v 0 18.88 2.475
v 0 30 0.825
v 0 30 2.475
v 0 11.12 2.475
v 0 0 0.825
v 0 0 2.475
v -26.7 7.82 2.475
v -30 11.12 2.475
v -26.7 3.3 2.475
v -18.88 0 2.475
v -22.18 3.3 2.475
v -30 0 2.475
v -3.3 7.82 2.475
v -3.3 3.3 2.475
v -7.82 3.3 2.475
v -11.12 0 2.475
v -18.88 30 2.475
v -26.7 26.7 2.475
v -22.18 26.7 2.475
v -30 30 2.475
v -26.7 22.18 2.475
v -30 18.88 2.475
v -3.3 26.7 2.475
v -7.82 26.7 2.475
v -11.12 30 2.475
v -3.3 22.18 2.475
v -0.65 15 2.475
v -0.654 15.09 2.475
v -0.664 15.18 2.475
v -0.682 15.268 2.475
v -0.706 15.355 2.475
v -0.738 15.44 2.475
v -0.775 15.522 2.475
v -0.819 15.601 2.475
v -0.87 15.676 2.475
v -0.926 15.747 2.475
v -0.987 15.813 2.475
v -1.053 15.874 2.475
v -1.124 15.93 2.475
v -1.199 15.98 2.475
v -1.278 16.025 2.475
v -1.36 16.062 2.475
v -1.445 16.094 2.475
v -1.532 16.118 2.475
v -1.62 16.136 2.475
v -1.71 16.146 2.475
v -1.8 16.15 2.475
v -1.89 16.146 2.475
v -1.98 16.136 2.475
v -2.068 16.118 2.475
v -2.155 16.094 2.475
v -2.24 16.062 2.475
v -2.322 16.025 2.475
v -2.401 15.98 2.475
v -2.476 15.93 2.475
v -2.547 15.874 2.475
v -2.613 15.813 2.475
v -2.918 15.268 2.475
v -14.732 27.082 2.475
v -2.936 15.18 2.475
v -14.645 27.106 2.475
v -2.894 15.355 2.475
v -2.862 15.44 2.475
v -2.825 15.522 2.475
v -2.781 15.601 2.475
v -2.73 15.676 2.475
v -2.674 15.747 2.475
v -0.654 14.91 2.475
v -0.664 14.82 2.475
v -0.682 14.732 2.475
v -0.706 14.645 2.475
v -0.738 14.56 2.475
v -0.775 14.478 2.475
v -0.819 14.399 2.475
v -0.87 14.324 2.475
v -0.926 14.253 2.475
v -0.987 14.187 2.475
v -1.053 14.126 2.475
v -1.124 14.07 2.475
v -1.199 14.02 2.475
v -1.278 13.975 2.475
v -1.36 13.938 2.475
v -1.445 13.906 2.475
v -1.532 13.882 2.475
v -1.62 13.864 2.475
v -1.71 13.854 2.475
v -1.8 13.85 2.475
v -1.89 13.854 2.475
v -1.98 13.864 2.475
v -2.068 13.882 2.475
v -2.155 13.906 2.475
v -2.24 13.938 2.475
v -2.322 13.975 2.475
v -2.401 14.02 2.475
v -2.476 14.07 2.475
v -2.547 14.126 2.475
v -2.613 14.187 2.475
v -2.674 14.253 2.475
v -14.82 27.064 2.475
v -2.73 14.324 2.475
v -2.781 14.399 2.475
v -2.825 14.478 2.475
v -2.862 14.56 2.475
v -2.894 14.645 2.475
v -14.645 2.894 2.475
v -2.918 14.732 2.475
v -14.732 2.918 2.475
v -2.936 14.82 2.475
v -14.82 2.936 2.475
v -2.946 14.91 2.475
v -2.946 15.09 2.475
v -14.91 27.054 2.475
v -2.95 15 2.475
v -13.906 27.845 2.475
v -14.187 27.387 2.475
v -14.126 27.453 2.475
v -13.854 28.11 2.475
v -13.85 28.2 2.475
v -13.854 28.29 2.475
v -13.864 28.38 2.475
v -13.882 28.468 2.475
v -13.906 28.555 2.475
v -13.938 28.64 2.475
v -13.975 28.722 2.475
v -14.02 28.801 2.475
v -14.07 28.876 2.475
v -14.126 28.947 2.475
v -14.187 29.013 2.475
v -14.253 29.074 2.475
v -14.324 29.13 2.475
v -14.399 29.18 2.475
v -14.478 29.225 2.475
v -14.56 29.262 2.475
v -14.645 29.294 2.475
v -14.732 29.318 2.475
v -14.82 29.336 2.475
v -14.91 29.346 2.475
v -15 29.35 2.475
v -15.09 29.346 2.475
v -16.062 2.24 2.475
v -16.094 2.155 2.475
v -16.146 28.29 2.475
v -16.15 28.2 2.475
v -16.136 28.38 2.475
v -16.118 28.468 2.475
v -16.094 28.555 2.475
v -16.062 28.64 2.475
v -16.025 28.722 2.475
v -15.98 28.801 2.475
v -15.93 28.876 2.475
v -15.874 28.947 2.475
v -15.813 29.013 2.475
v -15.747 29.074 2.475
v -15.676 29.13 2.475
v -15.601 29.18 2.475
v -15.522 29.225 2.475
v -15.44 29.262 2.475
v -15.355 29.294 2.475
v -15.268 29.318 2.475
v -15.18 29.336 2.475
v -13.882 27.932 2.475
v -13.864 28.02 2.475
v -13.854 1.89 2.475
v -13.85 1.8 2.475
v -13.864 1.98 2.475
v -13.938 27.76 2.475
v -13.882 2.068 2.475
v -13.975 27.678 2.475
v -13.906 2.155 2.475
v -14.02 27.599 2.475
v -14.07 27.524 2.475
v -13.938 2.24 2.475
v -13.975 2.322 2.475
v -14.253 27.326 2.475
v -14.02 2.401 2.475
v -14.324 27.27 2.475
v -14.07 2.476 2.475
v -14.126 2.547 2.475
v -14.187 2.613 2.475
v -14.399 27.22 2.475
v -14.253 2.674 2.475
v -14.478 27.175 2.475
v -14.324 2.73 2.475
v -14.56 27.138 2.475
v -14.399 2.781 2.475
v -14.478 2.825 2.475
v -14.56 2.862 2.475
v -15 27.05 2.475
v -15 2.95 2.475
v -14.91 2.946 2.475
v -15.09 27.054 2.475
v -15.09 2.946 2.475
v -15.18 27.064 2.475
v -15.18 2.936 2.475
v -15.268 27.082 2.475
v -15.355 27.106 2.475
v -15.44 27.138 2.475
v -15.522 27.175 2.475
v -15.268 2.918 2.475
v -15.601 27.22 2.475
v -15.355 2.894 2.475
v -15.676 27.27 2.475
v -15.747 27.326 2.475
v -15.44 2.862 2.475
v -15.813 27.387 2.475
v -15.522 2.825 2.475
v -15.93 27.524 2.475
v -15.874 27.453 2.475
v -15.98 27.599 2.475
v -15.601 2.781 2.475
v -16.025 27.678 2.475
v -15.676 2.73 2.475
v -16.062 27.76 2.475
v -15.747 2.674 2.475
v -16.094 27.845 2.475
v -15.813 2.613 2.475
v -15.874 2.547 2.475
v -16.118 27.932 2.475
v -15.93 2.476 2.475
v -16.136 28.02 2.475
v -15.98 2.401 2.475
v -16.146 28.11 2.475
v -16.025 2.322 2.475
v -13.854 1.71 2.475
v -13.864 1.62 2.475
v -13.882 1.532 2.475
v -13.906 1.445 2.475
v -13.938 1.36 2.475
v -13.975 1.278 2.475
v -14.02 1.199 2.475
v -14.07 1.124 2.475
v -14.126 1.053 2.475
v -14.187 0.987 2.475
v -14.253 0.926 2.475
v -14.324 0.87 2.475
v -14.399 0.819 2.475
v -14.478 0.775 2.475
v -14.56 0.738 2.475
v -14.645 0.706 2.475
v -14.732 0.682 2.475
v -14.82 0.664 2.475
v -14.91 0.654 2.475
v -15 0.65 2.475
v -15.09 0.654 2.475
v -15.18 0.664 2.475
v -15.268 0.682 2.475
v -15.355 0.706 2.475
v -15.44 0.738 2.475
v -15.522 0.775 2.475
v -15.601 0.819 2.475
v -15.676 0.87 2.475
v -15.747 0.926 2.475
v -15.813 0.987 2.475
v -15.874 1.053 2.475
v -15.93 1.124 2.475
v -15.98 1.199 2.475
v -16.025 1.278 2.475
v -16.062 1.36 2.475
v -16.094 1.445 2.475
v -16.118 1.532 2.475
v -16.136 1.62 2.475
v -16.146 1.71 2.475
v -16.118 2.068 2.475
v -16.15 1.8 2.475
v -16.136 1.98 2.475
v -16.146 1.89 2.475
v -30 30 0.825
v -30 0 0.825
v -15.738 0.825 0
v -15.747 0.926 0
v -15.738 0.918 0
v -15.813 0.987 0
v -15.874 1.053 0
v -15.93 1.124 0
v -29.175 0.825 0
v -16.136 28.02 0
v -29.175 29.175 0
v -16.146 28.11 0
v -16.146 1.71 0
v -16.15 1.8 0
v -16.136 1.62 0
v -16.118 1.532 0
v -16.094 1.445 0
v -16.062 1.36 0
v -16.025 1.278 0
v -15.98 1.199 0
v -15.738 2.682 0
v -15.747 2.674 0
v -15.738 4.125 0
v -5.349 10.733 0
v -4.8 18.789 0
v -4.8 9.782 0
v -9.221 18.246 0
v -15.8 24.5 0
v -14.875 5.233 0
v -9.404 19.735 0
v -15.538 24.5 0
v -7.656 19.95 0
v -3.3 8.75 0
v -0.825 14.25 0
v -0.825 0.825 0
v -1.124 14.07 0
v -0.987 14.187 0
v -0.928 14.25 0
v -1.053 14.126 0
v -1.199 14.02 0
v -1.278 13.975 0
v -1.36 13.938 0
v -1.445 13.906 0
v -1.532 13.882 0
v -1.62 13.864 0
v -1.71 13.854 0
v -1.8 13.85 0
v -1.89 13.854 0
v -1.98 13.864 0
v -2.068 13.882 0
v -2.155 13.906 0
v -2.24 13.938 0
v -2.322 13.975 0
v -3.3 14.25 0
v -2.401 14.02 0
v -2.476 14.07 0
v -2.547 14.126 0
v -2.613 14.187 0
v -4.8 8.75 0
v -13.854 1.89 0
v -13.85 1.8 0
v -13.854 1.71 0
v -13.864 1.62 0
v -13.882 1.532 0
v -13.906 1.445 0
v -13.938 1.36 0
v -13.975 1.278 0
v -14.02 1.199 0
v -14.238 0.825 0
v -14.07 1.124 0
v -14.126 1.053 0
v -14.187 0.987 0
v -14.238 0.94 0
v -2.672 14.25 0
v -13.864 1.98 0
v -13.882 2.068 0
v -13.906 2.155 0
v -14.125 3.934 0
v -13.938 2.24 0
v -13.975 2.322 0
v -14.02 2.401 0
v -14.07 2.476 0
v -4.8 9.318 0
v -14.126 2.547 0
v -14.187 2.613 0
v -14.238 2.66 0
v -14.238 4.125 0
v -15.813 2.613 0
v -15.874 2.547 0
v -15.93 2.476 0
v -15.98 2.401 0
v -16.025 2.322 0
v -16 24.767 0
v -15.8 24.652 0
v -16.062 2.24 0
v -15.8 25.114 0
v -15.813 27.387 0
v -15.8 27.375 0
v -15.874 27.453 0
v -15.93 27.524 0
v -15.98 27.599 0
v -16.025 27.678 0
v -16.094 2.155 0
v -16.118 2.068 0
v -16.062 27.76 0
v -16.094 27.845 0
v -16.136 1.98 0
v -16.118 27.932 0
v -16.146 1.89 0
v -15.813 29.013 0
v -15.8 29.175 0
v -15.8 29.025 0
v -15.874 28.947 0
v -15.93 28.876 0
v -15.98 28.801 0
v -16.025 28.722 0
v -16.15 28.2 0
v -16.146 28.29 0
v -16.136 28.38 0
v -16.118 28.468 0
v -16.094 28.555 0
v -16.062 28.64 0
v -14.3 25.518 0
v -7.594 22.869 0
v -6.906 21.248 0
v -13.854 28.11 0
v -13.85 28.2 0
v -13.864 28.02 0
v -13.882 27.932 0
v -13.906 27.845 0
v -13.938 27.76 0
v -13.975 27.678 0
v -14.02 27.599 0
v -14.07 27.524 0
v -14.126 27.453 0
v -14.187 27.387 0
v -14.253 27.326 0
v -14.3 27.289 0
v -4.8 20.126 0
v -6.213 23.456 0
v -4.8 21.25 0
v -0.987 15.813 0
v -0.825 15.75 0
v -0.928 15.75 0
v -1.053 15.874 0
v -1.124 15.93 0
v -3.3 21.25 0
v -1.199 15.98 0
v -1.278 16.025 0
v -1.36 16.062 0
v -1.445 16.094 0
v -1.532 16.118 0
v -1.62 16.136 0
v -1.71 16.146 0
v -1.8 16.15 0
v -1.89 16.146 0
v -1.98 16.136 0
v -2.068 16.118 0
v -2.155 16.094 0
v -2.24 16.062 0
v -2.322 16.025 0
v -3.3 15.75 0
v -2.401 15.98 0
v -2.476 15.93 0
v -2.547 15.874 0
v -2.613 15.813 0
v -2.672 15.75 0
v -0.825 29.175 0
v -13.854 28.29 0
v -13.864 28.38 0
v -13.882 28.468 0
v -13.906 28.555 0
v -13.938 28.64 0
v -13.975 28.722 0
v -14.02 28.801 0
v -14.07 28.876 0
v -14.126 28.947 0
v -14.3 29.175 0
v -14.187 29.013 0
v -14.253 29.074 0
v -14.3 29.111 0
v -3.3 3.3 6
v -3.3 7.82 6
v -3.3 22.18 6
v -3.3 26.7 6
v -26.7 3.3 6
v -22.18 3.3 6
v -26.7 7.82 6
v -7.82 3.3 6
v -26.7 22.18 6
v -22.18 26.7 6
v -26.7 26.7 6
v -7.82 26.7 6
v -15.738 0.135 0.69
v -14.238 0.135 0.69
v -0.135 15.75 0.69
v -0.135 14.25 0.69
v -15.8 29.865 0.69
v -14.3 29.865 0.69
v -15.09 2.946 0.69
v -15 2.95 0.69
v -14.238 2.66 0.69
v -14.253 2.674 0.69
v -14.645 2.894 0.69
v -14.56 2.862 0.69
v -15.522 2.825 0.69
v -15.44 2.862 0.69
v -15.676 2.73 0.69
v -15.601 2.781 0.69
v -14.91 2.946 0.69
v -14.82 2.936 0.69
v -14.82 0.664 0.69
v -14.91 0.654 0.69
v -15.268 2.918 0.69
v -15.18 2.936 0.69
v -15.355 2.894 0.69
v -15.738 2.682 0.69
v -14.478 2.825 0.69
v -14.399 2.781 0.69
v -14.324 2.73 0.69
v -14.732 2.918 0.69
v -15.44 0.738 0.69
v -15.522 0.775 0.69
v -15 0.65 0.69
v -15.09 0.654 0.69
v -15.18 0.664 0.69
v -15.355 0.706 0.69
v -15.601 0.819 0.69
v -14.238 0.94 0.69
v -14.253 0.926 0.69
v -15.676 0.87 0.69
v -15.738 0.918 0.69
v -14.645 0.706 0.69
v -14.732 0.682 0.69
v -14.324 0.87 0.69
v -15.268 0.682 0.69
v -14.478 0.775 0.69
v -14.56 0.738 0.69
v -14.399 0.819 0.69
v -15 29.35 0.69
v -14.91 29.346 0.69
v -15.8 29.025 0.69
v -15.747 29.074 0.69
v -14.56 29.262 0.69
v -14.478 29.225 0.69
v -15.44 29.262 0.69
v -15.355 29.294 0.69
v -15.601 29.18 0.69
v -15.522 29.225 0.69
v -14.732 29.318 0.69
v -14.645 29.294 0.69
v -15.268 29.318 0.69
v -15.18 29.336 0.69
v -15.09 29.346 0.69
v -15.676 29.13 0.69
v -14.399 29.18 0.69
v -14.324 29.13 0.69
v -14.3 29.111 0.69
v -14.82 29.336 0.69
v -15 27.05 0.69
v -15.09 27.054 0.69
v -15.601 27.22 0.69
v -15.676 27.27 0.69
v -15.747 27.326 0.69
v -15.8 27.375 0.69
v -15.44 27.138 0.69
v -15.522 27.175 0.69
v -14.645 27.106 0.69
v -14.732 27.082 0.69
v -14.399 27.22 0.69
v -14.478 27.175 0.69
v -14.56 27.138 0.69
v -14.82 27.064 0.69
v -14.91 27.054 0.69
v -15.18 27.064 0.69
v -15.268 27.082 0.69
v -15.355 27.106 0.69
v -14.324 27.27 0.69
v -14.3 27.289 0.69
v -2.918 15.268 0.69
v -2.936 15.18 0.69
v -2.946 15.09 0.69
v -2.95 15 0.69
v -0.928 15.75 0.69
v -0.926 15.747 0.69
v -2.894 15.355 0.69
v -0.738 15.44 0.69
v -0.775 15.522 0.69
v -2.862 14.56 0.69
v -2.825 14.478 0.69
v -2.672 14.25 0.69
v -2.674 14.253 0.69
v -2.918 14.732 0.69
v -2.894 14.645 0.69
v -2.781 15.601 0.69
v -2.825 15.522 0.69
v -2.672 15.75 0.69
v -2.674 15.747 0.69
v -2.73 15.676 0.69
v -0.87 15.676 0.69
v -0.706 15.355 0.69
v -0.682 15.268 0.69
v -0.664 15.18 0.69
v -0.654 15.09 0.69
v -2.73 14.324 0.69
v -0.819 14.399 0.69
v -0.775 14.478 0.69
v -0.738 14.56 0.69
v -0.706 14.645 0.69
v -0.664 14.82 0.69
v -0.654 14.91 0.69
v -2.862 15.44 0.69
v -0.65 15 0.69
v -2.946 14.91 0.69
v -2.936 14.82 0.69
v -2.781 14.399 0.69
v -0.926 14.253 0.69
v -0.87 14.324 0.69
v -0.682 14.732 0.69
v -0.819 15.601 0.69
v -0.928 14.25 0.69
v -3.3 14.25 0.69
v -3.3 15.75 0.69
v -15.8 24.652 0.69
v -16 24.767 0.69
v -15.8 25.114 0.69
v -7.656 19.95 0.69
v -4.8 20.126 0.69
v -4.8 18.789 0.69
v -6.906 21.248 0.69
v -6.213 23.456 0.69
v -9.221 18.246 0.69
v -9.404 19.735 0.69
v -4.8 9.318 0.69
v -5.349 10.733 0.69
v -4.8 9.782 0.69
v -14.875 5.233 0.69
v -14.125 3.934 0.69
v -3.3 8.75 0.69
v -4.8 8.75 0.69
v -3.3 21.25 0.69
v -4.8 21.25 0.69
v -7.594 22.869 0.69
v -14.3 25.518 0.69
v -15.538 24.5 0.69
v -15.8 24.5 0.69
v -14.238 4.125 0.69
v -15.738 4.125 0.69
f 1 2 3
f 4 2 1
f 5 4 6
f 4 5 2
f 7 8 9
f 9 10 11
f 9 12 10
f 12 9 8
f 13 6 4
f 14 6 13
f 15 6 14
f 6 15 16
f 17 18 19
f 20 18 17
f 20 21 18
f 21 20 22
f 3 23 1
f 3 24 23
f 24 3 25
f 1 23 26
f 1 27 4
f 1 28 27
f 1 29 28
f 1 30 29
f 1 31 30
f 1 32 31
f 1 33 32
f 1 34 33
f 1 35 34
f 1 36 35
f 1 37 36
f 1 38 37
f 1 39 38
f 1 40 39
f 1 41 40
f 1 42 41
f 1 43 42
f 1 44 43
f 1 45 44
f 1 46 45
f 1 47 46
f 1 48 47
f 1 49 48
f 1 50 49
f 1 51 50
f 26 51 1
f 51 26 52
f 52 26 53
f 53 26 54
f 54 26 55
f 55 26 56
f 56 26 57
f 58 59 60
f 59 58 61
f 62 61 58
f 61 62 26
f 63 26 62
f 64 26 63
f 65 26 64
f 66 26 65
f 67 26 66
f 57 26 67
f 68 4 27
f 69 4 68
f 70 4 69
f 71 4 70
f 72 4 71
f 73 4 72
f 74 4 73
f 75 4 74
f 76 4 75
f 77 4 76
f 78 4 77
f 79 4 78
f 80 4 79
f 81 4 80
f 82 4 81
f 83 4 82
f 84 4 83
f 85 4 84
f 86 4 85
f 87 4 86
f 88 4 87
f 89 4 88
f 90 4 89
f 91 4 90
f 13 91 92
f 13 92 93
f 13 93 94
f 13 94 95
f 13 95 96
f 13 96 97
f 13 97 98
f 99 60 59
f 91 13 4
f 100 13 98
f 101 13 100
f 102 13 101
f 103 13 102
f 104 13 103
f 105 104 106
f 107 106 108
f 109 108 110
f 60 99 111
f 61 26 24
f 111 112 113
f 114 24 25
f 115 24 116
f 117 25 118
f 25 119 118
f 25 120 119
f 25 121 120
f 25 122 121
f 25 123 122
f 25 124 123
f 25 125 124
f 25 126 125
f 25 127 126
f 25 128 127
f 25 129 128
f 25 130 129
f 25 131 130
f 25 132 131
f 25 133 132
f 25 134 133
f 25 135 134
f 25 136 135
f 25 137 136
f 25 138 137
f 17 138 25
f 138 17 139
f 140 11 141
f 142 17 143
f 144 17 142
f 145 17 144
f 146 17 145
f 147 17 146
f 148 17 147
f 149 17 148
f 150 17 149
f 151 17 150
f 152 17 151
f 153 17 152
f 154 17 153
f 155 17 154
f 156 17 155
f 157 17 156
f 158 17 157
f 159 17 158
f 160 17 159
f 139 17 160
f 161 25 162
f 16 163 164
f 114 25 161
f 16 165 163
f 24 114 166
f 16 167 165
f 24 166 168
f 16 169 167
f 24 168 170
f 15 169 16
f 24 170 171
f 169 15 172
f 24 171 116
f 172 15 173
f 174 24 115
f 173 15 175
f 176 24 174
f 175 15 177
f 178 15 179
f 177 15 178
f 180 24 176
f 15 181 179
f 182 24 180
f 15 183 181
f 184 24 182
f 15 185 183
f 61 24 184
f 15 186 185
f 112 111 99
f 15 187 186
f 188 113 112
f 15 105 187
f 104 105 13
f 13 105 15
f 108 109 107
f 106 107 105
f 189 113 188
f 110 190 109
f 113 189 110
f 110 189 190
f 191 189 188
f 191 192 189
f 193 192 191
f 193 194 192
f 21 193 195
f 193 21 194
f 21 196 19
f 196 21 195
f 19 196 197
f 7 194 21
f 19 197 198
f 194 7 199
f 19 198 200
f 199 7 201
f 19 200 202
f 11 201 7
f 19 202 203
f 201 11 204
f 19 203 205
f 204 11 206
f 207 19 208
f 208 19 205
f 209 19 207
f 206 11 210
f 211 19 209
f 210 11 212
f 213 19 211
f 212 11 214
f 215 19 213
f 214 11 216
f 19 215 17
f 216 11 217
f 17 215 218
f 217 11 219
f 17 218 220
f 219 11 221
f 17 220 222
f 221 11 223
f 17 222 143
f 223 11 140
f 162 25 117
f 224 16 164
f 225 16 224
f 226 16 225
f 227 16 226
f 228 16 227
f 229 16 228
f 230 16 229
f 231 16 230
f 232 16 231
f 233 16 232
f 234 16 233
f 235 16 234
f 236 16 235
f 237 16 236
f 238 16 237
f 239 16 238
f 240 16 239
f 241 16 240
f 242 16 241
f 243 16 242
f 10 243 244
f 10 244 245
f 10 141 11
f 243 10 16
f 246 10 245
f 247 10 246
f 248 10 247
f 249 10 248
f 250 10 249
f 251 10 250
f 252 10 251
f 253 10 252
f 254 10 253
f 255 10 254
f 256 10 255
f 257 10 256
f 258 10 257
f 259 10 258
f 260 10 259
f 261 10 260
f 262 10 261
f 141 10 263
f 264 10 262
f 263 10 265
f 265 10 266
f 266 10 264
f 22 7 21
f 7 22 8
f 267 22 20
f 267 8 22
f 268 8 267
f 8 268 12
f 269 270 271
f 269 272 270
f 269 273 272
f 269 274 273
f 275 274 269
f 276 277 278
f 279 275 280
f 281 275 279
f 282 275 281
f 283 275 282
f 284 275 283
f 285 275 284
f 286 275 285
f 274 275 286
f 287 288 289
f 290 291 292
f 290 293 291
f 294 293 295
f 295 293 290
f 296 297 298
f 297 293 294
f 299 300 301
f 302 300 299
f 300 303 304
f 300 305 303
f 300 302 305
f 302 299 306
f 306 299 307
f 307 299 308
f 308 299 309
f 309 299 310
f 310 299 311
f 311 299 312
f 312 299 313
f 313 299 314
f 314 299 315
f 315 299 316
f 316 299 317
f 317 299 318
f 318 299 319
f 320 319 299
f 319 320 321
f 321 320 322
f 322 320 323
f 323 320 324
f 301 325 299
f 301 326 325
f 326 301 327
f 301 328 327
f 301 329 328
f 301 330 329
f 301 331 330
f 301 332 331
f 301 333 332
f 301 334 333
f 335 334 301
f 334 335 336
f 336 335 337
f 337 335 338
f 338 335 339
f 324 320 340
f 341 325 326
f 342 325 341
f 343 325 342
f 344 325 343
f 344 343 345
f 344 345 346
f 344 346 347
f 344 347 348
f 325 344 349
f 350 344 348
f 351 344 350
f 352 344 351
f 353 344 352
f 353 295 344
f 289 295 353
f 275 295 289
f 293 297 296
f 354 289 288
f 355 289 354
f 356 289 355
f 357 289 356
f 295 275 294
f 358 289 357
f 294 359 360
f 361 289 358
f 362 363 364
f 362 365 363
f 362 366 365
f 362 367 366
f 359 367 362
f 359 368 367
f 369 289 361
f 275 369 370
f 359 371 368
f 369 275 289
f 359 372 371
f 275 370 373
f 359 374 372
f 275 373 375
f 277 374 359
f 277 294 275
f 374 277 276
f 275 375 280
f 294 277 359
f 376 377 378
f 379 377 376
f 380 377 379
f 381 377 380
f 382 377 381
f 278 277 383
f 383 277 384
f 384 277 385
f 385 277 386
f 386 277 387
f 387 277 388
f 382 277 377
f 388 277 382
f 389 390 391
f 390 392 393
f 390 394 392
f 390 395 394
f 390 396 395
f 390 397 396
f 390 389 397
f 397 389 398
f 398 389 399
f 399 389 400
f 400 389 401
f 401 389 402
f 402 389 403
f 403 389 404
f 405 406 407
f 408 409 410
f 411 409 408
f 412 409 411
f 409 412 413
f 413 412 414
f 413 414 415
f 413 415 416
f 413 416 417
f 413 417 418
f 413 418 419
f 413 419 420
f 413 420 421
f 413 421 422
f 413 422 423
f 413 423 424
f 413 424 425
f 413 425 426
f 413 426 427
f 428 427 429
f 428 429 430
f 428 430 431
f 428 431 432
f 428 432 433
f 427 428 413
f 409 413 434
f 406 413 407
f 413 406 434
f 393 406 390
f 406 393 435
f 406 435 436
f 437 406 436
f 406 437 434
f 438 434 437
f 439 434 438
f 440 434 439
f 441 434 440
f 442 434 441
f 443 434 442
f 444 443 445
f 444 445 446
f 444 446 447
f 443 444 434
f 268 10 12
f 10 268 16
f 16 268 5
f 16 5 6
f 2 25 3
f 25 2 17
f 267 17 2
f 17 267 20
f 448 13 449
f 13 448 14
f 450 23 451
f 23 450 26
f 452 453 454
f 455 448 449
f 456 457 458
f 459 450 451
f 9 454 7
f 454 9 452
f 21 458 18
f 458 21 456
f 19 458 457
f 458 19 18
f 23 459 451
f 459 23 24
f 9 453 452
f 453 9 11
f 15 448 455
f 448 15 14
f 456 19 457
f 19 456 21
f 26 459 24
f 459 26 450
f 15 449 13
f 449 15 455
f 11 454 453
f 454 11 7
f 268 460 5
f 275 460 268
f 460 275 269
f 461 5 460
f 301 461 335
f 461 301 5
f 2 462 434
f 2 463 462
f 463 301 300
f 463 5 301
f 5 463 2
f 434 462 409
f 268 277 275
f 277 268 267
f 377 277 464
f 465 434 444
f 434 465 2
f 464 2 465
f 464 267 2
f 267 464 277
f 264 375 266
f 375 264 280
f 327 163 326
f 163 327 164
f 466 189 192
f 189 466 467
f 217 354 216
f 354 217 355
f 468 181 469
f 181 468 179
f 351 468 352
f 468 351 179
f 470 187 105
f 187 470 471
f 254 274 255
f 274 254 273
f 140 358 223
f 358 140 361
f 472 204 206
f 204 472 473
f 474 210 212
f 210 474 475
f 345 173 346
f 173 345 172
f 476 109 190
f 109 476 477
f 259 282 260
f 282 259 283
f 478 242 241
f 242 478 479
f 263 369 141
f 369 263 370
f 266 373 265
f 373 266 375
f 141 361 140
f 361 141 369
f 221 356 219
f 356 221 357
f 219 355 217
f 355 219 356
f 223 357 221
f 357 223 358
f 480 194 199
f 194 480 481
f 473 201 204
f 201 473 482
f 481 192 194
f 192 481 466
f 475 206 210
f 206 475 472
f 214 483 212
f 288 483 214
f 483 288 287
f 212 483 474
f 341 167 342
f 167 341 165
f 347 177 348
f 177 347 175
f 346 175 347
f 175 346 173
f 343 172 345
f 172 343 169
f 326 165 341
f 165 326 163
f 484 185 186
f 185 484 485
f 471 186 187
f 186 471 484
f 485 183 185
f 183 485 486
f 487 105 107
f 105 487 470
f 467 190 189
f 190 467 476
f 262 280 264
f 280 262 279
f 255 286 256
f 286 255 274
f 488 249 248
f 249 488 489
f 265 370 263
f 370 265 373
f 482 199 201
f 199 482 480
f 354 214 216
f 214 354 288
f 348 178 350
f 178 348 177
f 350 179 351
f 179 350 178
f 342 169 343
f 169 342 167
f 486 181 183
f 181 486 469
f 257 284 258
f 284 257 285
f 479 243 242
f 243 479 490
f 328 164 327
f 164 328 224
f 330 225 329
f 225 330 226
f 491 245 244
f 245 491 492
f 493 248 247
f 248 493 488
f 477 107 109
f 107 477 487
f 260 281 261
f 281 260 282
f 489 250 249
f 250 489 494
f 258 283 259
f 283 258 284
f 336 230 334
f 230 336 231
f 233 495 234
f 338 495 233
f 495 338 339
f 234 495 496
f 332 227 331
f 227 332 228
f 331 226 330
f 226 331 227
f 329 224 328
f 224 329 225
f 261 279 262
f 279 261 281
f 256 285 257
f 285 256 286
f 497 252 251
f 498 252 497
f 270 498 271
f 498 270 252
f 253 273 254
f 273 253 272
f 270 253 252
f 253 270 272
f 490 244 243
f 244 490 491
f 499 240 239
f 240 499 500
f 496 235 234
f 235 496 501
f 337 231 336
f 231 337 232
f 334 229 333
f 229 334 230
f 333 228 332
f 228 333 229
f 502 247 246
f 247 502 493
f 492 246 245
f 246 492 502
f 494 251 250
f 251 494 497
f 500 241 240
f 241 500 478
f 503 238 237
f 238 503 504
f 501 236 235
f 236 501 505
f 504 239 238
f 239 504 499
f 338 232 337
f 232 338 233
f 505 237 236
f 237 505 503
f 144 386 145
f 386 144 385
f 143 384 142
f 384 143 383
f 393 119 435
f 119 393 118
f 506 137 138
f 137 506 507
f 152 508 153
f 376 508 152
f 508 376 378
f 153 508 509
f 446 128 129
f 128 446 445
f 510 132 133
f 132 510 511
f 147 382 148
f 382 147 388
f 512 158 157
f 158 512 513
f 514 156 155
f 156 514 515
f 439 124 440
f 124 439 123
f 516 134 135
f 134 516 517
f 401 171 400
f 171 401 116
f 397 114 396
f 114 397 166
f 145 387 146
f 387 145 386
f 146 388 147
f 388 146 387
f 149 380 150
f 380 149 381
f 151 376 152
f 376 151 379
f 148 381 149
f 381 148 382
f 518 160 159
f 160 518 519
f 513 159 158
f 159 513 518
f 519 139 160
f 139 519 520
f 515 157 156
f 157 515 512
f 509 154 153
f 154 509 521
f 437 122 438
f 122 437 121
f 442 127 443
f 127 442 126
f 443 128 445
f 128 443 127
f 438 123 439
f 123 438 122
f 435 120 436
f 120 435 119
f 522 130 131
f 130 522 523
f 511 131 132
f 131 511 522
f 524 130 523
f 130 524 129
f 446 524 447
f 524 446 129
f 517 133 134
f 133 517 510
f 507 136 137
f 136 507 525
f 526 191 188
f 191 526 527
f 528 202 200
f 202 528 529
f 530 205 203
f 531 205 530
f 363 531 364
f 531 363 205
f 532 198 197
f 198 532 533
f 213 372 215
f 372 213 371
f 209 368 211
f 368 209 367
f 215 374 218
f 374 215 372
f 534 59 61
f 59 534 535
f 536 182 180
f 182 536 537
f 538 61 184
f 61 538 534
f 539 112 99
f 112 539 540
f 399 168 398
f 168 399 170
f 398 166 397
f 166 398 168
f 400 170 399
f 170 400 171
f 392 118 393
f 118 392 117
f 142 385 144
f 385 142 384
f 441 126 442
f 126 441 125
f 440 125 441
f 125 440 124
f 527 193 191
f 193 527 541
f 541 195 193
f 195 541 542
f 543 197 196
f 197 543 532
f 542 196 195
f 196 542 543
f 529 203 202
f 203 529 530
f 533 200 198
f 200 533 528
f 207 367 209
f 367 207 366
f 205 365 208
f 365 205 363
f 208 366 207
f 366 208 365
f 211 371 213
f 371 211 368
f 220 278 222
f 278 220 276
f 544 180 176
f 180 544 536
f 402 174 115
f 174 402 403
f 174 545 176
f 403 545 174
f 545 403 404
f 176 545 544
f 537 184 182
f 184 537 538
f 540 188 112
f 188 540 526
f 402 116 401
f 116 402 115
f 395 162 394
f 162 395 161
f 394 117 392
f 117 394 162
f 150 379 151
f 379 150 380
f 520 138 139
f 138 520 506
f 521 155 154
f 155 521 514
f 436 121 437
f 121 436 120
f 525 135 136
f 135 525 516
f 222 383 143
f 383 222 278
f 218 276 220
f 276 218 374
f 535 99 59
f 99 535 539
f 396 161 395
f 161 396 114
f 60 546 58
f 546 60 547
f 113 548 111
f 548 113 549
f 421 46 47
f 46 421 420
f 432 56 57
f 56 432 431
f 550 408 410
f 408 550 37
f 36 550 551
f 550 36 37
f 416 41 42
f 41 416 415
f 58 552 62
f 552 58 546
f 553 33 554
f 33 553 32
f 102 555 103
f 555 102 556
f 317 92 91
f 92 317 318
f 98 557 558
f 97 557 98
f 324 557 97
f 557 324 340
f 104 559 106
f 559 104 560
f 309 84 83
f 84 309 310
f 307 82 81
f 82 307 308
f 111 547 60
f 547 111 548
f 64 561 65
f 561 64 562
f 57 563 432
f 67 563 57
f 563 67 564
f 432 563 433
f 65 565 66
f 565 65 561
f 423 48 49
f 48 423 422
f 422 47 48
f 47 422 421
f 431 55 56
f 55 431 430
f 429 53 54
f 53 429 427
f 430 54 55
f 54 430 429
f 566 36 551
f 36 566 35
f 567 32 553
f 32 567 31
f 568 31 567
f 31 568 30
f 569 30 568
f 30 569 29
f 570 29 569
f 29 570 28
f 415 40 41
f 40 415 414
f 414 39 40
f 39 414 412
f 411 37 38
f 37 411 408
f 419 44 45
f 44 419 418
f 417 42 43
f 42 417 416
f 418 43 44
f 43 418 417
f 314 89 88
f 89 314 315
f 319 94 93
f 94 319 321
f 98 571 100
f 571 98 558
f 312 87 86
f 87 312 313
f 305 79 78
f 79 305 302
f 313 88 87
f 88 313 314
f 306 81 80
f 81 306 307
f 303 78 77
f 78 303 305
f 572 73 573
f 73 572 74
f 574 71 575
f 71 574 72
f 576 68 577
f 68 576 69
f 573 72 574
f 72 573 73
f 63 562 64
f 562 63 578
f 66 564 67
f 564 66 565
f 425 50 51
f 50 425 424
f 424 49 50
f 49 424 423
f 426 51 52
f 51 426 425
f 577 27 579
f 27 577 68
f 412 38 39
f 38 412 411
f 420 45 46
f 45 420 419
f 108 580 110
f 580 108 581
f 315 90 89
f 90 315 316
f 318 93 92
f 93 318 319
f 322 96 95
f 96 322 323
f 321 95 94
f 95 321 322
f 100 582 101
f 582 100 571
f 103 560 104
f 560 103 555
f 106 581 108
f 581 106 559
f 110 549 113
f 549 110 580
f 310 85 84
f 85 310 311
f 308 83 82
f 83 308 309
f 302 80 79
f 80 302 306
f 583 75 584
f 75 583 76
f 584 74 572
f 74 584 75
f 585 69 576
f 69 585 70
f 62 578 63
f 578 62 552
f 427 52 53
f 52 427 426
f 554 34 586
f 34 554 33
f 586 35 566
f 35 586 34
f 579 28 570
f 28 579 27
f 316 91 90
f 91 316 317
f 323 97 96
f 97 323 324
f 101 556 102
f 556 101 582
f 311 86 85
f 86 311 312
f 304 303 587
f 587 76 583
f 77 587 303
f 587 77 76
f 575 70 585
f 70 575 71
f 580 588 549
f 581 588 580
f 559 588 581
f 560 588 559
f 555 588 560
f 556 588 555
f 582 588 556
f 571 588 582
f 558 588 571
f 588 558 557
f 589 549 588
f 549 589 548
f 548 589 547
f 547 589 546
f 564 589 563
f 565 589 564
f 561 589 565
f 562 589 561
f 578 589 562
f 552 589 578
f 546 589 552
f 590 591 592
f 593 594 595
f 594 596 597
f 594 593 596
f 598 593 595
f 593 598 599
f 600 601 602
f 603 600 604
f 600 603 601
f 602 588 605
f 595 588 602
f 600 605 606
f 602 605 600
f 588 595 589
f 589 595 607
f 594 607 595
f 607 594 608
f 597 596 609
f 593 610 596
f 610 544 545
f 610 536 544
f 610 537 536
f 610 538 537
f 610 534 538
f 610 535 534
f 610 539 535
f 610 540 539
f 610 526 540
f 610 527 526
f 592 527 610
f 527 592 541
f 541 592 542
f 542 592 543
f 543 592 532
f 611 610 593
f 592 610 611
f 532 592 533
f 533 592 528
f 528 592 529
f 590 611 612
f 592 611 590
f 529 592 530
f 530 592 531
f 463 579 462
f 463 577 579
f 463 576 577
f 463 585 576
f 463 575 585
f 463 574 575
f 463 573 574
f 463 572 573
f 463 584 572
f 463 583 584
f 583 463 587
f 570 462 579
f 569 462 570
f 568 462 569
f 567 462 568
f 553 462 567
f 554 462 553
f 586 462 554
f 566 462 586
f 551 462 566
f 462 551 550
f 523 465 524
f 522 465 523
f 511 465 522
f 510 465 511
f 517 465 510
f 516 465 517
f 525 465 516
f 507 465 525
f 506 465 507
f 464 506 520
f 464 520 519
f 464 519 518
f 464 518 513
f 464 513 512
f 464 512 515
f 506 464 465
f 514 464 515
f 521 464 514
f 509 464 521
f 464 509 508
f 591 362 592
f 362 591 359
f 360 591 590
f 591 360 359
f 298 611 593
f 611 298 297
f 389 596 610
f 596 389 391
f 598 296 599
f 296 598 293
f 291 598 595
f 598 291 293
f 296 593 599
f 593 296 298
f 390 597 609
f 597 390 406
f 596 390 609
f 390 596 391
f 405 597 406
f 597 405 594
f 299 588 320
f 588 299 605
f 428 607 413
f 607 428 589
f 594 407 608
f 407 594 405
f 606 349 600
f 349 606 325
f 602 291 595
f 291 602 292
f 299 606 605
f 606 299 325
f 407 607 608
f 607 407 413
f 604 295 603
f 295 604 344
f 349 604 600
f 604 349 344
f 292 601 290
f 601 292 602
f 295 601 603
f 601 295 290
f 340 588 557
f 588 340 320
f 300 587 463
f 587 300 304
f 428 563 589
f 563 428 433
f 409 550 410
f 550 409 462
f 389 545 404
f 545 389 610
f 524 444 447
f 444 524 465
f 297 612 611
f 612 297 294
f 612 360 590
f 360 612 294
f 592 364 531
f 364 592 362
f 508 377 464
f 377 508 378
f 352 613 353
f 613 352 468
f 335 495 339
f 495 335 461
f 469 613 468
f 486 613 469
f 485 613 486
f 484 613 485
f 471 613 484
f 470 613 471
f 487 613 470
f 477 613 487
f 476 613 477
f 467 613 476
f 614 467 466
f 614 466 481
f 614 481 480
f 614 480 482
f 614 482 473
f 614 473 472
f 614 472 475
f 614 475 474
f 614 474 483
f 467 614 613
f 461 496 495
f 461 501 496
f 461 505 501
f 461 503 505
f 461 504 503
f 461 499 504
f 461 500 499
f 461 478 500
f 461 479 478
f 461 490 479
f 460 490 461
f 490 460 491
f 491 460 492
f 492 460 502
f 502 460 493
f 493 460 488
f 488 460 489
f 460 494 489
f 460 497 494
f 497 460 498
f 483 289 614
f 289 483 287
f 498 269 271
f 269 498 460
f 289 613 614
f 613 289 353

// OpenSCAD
// file: sym_arrow.scad
module arrow(thickness, length, size, height)
{
    translate([thickness,-thickness/2])cube([length-thickness, thickness, height]);
    rotate([0,0,37])translate([0,-3*thickness/4])cube([size, thickness, height]);
    rotate([0,0,-37])translate([0,-thickness/4])cube([size, thickness, height]);
}
// file: sym_ring.scad
module ring(radius, thickness, height)
{
    difference()
    {
        cylinder(r=radius, h=height, $fn=64);
        translate([0,0,-thickness/2])cylinder(r=(radius-thickness), h=(height+thickness), $fn=64);
    }
}

ring(30, 1, 1);
// file: settings.scad
cube_width=30;
cube_height=16;
cube_thickness=3.3;

cap_width=30;
cap_height=6;
cap_thickness=3.3;

glyph_depth=0.7;
glyph_thickness=1.5;

photo_resitor_hole_r = 3.1;
spring_contact_hole_r = 3.35;
// file: sym_transistor_pnp.scad
use <sym_ring.scad>
use <sym_arrow.scad>
use <sym_ring.scad>

module transistor_pnp(diameter, thickness, height)
{
    //ring(0.5*diameter, thickness, height);
    
    //base
    translate([-diameter/4, -diameter/4, 0]) cube([thickness, diameter/2, height]);
    
    //emitter
    translate([-diameter/4+thickness, -diameter/6, 0])rotate([0,0,-30])arrow(thickness, diameter/2, 3*thickness, height);
    
    //collector
    //translate([1.6*diameter/8, diameter/2.5, 0])rotate([0,0,-150])arrow(thickness, 4*diameter/8, 0, height);
    translate([-diameter/4+thickness/4, diameter/6, 0])rotate([0,0, 30])arrow(thickness, 4*diameter/8, 0, height);
    
    //base wire
    translate([-diameter/4+thickness, 0,0]) rotate([0,0,180])arrow(thickness, diameter/3, 0, height);
    
    //emitter wire
    translate([diameter/4,-diameter/2+2*thickness,0])rotate([0,0,180])cube([thickness, diameter/3, height]);
    
    // collector wire
    translate([3*diameter/16, 1.5*diameter/4+thickness])cube([thickness, diameter/3, height]);
}

transistor_pnp(30, 1.5, 0.7);
// file: cap_1x1.scad
include <settings.scad>

module cap_1x1(width, height, thickness, holes_mask)
{
    width1=width-thickness;
    difference()
    {
        union()
        {
            cube([width, width, thickness*3/4]);
            translate([thickness,thickness,0])cube([width-2*thickness, width-2*thickness, height]);
        }
        union()
        {
            translate([width/2,width/2,0])rotate([0,0,45])translate([-width1/2,-width1/2,thickness*3/4]) cube([width1,width1,height]);
                        //corners
            translate([0,0.25*thickness,0])rotate([45,0,0]) translate([-0.5*width, -width, -0.5*height]) cube([2*width, width, 2*height]);
            translate([0.25*thickness,0,0]) rotate([0,-45,0]) translate([-width, -0.5*width, -0.5*height]) cube([width, 2*width, 2*height]);
            translate([width-0.25*thickness,0,0]) rotate([0,45,0]) translate([0, 0, -0.5*height]) cube([width, 2*width, 2*height]);
            translate([0,width-0.25*thickness,0]) rotate([-45,0,0]) translate([-0.5*width, 0, -0.5*height]) cube([2*width, width, 2*height]);
            
            if (holes_mask >= 8)
            {
                translate([width/2, thickness-1.5, -0.5]) cylinder(r=1.15, h=height*1.5, $fn=80);
            }
            if ((holes_mask%8) >= 4)
            {
                translate([width/2, width-thickness+1.5, -0.5]) cylinder(r=1.15, h=height*1.5, $fn=80);
            }
            if ((holes_mask%4)>= 2)
            {
                translate([thickness-1.5, width/2, -0.5]) cylinder(r=1.15, h=height*1.5, $fn=80);
            }
            if (holes_mask%2 >= 1)
            {
                translate([width-thickness+1.5, width/2, -0.5]) cylinder(r=1.15, h=height*1.5, $fn=80);
            }
        }
    }
}

cap_1x1(cap_width, cap_height, cap_thickness, 9);
//ring(10,1,1);
//arrow(1, 20, 3, 1);
//transistor_npn(30, 1, 1);
// main file
use <cap_1x1.scad>
use <sym_transistor_pnp.scad>
include <settings.scad>

module cap_1x1_pnp_transistor_flipped(width, height, thickness)
{
    mirror([1,0,0])difference()
    {
        cap_1x1(width, height, thickness, 14);
        translate([3*width/8-1.7,width/2,-0.01]) mirror([0,1,0]) transistor_pnp(25, glyph_thickness, glyph_depth);
    }
}

cap_1x1_pnp_transistor_flipped(cap_width, cap_height, cap_thickness);
